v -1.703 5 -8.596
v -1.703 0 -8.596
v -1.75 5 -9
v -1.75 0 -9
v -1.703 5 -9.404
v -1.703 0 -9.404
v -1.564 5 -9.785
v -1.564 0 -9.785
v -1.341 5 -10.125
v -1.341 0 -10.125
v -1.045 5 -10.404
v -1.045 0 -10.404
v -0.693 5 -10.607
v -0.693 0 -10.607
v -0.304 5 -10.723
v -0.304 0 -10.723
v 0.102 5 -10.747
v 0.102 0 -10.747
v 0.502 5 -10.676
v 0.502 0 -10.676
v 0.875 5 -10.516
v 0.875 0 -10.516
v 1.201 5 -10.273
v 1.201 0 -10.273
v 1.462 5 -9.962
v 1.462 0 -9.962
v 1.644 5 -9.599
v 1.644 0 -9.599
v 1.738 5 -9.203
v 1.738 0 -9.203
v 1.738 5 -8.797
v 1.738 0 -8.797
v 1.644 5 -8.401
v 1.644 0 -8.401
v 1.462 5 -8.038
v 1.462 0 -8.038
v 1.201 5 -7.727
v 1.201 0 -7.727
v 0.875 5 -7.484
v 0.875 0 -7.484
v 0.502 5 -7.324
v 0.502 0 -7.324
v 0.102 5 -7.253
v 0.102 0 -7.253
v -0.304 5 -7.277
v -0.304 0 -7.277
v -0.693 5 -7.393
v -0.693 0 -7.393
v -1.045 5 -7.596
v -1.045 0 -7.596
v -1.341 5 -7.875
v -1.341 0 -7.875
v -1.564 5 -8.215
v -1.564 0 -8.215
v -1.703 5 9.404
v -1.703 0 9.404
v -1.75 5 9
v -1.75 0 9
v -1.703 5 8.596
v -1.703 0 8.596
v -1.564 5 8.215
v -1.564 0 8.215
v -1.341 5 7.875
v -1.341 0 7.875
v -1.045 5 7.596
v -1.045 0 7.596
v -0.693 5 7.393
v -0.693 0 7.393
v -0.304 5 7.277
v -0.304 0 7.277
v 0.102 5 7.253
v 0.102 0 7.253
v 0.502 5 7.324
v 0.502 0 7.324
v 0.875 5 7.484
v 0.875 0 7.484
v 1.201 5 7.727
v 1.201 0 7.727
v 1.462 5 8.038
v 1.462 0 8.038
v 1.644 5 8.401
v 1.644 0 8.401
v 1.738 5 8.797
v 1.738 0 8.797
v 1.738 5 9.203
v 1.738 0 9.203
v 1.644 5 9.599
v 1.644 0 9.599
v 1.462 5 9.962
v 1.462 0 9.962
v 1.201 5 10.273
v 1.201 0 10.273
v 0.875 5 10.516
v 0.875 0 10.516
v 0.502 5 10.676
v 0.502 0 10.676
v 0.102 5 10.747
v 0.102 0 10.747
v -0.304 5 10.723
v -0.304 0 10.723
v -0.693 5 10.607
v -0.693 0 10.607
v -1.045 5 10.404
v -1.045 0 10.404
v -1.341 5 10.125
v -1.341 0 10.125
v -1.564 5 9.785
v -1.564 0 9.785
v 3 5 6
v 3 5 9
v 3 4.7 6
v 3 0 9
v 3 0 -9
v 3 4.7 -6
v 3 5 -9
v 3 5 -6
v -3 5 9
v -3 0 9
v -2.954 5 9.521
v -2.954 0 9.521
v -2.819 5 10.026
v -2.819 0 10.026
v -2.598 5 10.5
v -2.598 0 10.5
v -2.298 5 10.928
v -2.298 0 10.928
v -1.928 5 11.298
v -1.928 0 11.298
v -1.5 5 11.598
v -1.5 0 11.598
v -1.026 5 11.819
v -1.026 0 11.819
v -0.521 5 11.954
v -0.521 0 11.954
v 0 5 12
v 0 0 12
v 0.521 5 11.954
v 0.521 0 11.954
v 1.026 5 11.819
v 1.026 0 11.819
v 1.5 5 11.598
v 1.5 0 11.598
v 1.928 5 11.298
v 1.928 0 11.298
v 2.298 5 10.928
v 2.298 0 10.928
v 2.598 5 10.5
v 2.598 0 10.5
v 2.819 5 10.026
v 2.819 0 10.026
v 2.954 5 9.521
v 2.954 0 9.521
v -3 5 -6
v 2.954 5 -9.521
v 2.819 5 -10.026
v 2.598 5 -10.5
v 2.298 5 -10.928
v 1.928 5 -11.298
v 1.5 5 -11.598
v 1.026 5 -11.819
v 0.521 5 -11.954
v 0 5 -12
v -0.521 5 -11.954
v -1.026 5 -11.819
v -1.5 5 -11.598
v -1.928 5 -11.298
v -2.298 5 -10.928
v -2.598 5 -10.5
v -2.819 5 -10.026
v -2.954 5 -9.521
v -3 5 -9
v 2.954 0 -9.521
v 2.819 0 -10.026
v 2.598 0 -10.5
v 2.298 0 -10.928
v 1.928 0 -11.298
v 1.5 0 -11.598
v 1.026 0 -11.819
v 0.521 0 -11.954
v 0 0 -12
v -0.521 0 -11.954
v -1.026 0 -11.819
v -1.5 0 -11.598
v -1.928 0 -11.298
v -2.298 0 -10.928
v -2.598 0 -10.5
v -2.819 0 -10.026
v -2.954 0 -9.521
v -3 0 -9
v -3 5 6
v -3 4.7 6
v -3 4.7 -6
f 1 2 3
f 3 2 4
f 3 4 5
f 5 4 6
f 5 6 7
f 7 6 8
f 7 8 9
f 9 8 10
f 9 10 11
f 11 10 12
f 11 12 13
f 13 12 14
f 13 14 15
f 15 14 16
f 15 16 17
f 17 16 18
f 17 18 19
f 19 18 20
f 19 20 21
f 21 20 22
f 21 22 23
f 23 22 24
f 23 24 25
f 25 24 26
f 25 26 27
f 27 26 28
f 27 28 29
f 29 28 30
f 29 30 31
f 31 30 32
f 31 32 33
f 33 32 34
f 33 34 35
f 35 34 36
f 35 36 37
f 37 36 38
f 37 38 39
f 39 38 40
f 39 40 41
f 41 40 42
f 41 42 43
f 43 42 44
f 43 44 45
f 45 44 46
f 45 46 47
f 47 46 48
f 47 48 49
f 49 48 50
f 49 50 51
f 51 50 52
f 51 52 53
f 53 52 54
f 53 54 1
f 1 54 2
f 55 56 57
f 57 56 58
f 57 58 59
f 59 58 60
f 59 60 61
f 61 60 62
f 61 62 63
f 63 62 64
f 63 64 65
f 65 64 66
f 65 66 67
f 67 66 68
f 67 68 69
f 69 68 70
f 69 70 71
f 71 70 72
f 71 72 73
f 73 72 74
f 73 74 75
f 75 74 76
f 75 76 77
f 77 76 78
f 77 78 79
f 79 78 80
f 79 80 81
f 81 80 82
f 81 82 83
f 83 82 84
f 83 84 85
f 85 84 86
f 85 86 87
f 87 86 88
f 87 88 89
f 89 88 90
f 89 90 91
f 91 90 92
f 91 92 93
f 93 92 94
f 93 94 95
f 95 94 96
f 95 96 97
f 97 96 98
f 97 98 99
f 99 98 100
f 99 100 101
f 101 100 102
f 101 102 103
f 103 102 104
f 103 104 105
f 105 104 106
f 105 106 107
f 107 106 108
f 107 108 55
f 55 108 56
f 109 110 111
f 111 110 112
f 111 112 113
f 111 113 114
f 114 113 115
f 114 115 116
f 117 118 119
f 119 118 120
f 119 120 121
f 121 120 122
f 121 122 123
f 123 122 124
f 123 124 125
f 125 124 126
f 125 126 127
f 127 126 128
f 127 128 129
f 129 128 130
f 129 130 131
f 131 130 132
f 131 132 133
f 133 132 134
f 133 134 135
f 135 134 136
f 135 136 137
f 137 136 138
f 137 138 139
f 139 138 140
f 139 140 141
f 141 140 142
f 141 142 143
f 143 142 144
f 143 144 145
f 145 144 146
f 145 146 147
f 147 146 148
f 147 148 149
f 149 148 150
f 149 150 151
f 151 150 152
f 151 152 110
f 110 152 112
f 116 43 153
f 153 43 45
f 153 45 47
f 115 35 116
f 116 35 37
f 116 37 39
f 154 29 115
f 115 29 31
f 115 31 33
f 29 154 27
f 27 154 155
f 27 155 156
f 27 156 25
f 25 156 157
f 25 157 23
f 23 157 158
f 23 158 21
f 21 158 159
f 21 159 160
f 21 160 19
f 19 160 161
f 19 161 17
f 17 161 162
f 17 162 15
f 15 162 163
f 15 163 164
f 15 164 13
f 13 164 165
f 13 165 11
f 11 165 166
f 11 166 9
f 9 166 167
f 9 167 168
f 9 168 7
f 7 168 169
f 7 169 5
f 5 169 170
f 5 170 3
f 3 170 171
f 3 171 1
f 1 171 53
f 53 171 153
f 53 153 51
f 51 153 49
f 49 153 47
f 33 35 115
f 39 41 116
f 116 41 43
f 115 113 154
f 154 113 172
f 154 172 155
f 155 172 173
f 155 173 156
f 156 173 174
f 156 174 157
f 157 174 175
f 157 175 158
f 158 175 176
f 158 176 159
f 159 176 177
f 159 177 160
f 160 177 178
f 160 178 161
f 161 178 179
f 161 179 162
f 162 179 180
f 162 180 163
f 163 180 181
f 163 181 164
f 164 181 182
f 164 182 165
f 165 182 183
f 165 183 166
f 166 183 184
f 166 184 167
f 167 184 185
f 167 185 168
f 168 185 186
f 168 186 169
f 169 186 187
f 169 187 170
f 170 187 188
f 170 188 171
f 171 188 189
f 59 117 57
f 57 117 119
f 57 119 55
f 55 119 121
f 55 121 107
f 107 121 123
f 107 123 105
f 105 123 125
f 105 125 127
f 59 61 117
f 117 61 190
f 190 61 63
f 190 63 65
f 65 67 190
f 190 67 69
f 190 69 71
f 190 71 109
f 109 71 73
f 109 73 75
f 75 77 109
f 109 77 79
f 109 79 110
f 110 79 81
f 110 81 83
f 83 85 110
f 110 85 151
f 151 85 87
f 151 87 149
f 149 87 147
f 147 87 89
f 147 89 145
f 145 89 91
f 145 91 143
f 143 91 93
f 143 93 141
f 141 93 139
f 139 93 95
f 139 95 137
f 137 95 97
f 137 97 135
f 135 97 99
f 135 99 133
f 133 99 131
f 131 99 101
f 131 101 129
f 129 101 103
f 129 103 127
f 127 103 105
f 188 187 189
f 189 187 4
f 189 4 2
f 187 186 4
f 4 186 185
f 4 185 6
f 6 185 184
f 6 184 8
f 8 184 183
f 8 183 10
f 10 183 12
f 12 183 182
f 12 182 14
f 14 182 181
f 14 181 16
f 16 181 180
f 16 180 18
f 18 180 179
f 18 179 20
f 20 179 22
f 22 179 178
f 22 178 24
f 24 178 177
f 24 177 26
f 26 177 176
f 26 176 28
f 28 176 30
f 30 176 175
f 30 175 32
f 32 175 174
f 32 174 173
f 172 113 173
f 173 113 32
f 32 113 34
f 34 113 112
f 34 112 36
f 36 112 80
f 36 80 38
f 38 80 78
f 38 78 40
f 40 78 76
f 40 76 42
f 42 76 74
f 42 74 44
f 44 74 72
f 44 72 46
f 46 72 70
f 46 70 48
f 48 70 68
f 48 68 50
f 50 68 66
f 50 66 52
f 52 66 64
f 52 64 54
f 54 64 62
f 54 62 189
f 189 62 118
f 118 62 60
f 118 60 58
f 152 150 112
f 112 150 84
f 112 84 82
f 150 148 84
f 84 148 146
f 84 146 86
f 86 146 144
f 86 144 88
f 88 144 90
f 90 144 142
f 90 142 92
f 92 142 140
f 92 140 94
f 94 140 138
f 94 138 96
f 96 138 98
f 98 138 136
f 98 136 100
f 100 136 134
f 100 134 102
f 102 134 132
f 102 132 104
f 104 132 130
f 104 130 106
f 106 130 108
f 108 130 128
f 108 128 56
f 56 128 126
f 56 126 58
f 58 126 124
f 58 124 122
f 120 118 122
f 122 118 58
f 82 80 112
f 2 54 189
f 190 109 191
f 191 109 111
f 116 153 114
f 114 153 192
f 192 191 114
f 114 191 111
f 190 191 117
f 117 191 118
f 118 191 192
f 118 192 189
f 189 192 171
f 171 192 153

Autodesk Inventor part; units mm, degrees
ref_plane "YZ Plane" through (0, 0, 0) normal (1, 0, 0) x (0, 1, 0)
ref_plane "XZ Plane" through (0, 0, 0) normal (0, 1, 0) x (-1, 0, 0)
ref_plane "XY Plane" through (0, 0, 0) normal (0, 0, 1) x (1, 0, 0)
sketch "Sketch1" plane through (0, 0, 0) normal (0, 1, 0) x (-1, 0, 0)
  circle A0 centre (0, 9) radius 1.75
  circle A1 centre (0, -9) radius 1.75
  circle A2 centre (0, 9) radius 3
  circle A3 centre (0, -9) radius 3
  line L0 (3, 9) -> (-3, 9)
  line L1 (-3, 9) -> (-3, -9)
  line L2 (-3, -9) -> (3, -9)
  line L3 (3, -9) -> (3, 9)
  point P0 (0, 0)
  point P1 (-3, 9)
  point P2 (3, -9)
  dimension "d6" = 6
  dimension "d7" = 6
  dimension "d0" = 3.5
  dimension "d1" = 3.5
  dimension "d2" = 9
  dimension "d3" = 9
  dimension "d4" = 0
  dimension "d5" = 0
  dimension "d8" = 18
  dimension "d9" = 6
extrude "Extrusion1" add sketch "Sketch1" along normal blind 5 contours L0 A2 A0 | A0 L0 A2 | L3 A3 L1 A2 | L2 A1 A3 | A3 L2 A1
sketch "Sketch2" plane through (0, 5, 0) normal (0, 1, 0) x (1, 0, 0)
  line L0 (-3, 9) -> (-3, -9) projected
  line L1 (3, -9) -> (3, 9) projected
  line L2 (-3, -6) -> (3, -6)
  line L3 (3, -6) -> (3, 6)
  line L4 (3, 6) -> (-3, 6)
  line L5 (-3, 6) -> (-3, -6)
  point P0 (0, 0)
  point P1 (3, -6)
  dimension "d12" = 6
  dimension "d13" = 6
extrude "Extrusion2" cut sketch "Sketch2" against normal blind 0.3
properties part number "Belt Holder"
